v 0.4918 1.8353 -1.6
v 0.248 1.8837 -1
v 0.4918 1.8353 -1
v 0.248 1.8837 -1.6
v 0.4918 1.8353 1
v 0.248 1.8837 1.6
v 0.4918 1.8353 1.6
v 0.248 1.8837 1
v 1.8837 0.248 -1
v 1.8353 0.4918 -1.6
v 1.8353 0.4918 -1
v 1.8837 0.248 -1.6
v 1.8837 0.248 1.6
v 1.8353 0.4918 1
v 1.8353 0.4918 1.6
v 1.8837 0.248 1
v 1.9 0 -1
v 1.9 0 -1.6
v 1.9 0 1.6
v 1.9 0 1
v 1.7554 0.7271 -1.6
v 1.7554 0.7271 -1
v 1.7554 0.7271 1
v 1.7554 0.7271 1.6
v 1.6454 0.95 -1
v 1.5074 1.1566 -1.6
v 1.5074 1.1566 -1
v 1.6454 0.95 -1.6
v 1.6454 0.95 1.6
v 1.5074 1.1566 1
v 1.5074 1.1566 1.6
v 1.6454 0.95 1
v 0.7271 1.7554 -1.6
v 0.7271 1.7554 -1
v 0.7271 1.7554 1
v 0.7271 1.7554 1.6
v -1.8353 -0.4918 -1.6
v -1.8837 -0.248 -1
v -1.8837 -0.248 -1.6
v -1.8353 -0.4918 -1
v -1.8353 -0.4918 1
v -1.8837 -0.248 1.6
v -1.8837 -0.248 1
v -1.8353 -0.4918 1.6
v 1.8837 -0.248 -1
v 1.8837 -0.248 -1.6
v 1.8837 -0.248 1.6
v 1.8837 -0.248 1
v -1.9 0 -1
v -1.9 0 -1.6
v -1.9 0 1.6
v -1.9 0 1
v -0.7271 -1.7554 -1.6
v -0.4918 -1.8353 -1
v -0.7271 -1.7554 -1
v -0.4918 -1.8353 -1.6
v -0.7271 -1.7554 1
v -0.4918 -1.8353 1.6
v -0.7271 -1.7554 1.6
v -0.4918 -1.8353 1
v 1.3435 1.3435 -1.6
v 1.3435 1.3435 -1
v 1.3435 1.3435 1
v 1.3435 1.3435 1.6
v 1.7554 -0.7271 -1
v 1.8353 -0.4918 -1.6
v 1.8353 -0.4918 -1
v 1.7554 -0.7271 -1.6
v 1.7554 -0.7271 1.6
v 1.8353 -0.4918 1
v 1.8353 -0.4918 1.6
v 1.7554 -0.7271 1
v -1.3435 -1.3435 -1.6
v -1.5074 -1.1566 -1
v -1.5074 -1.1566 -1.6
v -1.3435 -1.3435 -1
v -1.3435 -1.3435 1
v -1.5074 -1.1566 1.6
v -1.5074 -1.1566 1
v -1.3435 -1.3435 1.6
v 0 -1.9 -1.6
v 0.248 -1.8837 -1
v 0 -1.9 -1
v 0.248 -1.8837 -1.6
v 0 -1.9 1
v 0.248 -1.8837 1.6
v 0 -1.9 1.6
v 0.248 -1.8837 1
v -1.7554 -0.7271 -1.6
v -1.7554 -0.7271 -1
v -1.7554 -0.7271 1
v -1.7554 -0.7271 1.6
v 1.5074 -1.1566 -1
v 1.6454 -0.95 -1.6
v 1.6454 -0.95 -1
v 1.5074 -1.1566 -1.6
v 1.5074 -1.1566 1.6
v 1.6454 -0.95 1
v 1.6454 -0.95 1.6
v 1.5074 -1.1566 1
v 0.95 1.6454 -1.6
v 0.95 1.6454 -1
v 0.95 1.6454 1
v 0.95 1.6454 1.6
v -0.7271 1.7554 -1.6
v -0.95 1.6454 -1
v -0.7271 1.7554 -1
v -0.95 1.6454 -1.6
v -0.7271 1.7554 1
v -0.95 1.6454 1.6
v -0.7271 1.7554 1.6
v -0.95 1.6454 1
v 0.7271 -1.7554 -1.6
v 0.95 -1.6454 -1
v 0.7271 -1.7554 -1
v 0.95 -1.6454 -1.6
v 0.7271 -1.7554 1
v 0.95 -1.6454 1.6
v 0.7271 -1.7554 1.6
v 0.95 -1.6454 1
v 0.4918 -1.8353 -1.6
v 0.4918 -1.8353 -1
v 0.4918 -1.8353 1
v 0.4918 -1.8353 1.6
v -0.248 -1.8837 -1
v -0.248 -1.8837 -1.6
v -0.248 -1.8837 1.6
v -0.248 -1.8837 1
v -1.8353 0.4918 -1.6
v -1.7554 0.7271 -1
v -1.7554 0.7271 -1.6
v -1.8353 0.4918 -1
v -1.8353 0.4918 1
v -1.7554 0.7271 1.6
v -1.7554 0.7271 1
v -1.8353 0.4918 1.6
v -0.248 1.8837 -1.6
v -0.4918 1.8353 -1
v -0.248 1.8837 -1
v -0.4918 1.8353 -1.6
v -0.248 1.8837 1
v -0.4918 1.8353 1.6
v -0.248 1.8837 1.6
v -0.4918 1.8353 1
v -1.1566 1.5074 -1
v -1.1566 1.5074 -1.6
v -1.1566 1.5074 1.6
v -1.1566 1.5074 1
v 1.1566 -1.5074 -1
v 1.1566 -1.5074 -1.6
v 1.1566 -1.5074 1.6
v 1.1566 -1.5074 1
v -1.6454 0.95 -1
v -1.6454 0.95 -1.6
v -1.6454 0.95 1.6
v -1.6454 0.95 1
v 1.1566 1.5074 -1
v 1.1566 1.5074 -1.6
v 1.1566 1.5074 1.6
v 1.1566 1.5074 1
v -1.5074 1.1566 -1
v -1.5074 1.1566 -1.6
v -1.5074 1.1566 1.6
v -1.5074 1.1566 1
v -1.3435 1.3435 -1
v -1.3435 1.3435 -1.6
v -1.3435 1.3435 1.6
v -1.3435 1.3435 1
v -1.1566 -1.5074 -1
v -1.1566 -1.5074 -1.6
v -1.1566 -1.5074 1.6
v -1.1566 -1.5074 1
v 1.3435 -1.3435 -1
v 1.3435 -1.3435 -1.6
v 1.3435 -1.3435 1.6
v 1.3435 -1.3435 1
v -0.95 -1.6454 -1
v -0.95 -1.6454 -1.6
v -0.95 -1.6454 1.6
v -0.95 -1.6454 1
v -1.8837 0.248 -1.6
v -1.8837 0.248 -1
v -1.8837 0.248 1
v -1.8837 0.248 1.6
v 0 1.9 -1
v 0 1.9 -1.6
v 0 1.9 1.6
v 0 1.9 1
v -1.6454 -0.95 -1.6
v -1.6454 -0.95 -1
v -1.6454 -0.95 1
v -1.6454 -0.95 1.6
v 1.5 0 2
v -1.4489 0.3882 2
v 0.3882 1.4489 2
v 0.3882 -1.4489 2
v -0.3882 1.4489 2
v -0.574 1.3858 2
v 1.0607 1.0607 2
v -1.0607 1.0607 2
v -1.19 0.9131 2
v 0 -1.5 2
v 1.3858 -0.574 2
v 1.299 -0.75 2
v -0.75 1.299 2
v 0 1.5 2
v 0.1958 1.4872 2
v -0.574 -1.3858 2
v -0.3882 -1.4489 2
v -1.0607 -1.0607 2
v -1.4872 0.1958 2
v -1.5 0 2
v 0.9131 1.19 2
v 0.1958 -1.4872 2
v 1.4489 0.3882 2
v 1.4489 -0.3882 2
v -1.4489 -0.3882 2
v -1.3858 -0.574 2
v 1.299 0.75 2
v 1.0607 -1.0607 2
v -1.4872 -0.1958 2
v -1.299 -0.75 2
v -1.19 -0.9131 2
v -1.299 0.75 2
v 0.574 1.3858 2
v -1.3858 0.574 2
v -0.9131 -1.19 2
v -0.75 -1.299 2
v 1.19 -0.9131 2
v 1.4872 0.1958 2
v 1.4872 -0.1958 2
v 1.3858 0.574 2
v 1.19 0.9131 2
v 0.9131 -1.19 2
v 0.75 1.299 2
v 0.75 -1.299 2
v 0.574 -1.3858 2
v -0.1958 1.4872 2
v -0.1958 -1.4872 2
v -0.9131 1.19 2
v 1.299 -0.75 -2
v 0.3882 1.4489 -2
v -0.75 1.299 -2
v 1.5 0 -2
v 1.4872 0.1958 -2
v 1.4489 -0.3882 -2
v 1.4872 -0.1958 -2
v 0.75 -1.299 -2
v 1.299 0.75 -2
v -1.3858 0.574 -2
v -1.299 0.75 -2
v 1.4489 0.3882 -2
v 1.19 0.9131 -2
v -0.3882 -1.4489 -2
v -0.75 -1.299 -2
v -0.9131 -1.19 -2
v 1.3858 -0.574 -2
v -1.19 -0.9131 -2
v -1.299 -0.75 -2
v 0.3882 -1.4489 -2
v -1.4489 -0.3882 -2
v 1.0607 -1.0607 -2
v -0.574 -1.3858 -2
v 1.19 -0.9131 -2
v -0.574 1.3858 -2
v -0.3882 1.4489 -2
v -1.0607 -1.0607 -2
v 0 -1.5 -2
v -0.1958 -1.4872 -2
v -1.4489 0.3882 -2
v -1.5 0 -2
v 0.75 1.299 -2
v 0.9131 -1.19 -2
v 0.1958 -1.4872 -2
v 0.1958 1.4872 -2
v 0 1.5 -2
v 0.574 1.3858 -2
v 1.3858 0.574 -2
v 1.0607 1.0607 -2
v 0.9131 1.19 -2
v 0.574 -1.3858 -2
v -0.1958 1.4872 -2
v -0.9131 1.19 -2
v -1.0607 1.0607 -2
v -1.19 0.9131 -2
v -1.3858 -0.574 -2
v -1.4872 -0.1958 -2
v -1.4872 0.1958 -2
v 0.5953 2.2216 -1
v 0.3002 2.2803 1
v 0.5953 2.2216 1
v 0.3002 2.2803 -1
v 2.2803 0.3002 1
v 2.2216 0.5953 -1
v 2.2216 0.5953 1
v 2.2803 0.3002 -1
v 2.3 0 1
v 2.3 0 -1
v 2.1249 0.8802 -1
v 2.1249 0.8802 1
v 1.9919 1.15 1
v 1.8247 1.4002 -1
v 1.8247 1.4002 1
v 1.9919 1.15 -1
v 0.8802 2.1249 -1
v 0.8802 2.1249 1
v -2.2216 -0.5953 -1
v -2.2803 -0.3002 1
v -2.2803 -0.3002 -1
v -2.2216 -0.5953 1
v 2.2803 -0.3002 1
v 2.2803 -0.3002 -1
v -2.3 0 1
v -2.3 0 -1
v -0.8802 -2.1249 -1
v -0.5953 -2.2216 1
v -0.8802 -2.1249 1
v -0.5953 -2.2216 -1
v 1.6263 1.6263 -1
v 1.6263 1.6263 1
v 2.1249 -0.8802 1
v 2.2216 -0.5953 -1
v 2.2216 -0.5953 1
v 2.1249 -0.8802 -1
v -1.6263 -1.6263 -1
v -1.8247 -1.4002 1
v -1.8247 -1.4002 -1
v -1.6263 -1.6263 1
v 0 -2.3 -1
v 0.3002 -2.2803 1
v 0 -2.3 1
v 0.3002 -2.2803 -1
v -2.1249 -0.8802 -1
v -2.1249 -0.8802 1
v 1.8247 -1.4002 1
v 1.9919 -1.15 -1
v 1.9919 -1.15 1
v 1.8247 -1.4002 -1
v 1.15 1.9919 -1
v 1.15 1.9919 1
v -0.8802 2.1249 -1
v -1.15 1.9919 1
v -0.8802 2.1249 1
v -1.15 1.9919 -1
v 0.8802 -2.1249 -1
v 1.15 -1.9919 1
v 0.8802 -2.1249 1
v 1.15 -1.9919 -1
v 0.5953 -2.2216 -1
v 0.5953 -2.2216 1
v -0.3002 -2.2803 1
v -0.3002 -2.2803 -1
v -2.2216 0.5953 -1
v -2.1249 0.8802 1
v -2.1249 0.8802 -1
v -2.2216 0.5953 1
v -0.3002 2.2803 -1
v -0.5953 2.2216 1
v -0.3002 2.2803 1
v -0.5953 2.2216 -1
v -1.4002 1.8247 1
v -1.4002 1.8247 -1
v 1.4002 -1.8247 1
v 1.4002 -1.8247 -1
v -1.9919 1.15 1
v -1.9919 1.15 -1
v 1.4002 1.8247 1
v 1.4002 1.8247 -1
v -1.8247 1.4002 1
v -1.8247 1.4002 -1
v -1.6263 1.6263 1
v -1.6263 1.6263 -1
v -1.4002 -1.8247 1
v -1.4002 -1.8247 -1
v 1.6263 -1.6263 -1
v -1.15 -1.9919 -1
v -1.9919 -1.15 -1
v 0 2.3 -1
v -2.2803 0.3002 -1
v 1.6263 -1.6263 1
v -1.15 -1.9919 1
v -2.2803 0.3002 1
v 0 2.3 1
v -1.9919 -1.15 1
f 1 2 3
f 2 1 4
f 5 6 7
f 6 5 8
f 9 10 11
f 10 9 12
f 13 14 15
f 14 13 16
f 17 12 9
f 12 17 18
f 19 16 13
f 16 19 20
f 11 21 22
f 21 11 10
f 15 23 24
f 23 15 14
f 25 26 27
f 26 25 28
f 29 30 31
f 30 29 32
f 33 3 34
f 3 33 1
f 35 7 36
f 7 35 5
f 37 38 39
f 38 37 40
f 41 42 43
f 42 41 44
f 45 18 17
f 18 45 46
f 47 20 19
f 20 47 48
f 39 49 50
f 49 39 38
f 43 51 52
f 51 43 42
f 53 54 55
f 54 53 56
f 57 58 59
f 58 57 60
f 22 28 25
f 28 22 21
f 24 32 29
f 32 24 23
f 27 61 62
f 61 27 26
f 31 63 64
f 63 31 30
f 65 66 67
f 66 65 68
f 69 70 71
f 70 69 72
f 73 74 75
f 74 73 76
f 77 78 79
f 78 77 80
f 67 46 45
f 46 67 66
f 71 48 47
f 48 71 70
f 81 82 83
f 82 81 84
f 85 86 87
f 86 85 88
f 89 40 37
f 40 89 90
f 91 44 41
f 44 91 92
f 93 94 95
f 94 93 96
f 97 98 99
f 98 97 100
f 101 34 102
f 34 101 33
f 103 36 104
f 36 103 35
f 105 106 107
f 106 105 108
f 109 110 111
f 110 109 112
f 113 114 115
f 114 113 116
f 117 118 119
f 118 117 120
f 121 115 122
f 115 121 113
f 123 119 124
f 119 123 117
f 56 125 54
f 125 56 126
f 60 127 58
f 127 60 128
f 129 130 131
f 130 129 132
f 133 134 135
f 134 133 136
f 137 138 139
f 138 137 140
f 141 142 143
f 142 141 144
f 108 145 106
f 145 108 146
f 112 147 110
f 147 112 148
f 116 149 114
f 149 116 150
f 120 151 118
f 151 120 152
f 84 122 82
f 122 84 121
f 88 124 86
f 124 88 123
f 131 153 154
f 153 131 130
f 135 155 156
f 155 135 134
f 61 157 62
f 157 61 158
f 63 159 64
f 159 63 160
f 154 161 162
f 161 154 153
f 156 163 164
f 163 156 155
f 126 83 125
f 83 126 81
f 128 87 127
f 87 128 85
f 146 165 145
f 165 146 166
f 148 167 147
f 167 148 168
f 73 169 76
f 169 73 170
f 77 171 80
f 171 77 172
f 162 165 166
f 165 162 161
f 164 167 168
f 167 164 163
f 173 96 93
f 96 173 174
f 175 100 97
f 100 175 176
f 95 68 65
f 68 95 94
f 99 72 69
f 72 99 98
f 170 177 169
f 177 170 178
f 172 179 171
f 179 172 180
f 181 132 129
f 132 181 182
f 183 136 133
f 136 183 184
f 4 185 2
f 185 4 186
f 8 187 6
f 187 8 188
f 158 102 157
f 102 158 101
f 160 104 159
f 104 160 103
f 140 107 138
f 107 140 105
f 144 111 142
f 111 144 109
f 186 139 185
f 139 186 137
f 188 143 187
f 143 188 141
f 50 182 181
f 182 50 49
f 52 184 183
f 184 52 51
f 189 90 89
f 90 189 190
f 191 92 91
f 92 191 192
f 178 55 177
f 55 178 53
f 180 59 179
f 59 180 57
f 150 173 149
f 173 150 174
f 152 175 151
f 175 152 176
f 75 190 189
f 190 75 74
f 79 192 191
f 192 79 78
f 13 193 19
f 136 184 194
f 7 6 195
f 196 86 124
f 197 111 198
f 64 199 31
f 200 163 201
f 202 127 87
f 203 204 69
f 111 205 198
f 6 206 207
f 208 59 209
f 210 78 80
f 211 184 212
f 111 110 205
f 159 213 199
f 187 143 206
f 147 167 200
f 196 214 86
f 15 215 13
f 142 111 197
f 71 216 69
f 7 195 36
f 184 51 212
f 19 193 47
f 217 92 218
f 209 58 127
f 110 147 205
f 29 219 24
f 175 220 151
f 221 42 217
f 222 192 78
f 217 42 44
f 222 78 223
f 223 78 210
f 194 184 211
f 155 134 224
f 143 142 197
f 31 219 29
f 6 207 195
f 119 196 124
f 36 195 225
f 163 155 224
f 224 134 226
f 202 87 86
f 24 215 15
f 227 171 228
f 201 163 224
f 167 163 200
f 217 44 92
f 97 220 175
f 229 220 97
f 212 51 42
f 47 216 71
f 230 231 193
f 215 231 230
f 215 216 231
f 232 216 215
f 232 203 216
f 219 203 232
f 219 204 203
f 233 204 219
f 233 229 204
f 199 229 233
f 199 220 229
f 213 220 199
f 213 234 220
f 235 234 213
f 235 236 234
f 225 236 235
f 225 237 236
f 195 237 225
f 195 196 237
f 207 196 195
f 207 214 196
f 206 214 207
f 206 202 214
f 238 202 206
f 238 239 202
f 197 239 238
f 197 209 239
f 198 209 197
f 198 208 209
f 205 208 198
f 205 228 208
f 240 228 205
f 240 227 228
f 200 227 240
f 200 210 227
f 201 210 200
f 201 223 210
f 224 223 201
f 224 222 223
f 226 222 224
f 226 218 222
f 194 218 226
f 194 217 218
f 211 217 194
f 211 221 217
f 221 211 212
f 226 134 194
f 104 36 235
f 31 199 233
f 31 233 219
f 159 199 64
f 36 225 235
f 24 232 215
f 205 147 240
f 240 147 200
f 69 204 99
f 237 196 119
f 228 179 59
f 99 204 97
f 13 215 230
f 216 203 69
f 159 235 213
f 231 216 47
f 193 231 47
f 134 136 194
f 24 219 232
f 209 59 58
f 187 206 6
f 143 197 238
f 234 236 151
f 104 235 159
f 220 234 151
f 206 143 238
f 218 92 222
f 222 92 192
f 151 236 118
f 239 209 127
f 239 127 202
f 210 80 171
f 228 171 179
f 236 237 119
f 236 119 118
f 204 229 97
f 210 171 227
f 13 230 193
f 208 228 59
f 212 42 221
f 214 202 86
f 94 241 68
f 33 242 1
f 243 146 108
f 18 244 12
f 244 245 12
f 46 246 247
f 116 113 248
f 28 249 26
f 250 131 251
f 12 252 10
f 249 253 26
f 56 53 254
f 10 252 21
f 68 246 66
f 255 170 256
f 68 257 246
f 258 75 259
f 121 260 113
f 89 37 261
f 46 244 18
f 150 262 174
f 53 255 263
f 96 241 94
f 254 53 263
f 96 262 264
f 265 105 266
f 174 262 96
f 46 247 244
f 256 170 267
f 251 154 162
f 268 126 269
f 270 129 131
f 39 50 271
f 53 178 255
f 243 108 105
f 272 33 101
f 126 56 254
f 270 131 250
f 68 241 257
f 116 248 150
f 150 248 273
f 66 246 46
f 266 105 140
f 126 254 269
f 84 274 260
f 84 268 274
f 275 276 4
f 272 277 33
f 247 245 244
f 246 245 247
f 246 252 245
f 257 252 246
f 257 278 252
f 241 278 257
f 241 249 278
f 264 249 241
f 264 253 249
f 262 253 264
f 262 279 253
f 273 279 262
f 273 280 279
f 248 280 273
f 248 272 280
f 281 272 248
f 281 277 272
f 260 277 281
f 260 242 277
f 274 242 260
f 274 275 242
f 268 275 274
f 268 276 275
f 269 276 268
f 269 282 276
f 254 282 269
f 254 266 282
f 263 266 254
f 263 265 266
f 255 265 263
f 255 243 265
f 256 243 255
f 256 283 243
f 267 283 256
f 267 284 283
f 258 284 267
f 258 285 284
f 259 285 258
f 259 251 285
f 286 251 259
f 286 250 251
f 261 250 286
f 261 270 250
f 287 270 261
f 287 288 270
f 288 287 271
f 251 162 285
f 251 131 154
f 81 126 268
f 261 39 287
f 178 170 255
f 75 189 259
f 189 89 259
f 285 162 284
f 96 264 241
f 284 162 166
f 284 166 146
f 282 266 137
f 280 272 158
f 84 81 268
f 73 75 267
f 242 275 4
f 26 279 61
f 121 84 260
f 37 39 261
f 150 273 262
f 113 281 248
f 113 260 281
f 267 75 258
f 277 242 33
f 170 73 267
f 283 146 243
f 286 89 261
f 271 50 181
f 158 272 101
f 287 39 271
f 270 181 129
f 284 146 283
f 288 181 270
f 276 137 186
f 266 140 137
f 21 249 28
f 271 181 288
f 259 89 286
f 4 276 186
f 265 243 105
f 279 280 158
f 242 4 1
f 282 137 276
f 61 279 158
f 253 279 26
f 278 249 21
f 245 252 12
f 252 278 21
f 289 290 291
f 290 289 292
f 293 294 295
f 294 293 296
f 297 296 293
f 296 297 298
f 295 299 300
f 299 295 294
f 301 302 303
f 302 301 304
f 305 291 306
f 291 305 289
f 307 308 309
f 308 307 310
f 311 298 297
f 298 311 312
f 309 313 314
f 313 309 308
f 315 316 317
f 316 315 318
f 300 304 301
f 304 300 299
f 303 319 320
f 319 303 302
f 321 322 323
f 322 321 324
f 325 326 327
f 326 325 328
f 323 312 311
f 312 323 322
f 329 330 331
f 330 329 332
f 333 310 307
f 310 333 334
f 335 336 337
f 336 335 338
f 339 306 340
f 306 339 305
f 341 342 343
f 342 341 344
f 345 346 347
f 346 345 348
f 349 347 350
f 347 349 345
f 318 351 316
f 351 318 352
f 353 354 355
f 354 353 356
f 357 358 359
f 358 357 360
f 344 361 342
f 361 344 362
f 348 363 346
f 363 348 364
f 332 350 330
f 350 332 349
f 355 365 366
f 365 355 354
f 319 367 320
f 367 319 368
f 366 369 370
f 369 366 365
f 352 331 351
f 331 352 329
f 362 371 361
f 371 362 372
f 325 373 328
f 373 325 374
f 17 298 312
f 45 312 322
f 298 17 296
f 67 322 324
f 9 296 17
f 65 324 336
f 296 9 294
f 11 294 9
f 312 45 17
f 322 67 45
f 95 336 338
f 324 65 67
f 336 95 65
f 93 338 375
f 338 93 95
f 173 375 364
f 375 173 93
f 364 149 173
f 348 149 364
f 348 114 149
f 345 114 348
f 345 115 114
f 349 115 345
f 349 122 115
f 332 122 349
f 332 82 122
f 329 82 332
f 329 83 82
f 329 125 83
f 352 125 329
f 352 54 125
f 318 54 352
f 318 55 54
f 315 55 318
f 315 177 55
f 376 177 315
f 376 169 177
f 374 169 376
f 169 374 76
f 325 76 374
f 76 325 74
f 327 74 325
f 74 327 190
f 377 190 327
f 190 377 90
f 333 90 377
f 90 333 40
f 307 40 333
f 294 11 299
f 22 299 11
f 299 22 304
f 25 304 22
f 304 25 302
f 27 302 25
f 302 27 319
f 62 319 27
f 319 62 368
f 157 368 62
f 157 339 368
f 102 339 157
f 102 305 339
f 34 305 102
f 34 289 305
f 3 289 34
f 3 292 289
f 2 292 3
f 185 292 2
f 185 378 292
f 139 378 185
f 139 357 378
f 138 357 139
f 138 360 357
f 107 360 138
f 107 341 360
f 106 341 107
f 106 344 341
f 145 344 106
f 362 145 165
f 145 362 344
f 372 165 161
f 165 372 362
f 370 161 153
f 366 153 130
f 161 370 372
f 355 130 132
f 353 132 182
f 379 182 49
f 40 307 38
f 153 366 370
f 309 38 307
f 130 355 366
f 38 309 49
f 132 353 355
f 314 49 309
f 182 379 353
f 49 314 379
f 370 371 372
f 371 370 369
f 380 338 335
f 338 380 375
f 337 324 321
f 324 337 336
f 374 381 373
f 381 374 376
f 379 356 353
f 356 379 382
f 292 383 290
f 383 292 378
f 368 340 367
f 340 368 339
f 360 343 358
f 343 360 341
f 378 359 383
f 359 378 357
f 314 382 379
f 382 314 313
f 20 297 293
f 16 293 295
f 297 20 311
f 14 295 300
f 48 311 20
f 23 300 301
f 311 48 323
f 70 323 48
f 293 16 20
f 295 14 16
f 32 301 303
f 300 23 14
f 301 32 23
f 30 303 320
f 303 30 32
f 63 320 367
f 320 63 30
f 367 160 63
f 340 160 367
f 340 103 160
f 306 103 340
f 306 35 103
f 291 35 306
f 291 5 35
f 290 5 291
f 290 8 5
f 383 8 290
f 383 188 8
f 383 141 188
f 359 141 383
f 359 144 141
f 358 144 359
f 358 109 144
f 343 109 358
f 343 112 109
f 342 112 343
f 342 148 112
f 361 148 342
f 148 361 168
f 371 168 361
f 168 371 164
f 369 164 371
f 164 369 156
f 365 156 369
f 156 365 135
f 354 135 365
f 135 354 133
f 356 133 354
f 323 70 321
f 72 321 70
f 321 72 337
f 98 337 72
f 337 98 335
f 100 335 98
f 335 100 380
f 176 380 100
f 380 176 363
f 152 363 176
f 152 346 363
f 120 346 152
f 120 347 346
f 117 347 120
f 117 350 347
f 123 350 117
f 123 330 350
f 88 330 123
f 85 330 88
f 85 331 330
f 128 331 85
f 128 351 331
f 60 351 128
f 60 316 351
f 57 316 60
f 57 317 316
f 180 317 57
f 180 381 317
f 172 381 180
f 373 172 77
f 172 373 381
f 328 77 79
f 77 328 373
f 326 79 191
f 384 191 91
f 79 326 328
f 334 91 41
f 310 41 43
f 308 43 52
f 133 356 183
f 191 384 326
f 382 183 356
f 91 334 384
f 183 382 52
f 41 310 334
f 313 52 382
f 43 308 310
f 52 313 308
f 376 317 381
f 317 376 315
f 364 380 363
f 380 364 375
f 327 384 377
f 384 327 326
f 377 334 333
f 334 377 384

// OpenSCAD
// file: params.scad
// ============================================================
// PARAMS — primitivos e derivados do sistema
// ============================================================
// FONTE ÚNICA dos primitivos no OpenSCAD. Toda peça faz
// `include <params.scad>` em vez de redeclarar.
//
// Antes disto os 7 primitivos estavam copiados em brick, pin,
// node e dock — 28 declarações para 7 valores. Foi o que deixou
// `pin_len` ficar 1.6 na spec e 2.0 em quatro implementações sem
// ninguém notar. O `make spec-check` DETECTA essa divergência;
// este arquivo IMPEDE que ela exista.
//
// Reatribuir daqui funciona por include aninhado — testado:
// variante -> peça -> params propaga e os derivados recomputam.
//
// ⚠️ Variável NOVA da variante tem de ser declarada ANTES do
// `include`. Depois dele o OpenSCAD avalia a reatribuição no
// ponto da declaração original, onde a variável nova ainda não
// existe: sai `WARNING: Ignoring unknown variable` e o valor
// errado, em silêncio.
//
// contrato: spec/parts/brick/contracts.toml
// premissas: spec/constitution.md
// ============================================================

/* [Primitivos do sistema] */

// Diâmetro do furo passante — a interface mecânica
hole_d = 4.0; // [1:0.1:30]

// Parede interna mínima (4 perímetros de 0.4)
wall = 1.6; // [0.4:0.1:6]

// Degrau RADIAL entre furo e rebaixo (1 bico de 0.4)
collar_w = 0.4; // [0:0.1:2]

// Profundidade AXIAL do rebaixo
collar_depth = 1.0; // [0.25:0.25:4]

// Folga de press-fit, subtraída sempre do MACHO
tolerance = 0.2; // [0:0.05:0.6]

// Folga real mínima entre dois machos que se aproximam
gap = 0.5; // [0:0.1:2]

// Protrusão do macho. DECLARADO, não derivado: o limite é a
// colisão com o macho PERPENDICULAR, e essa aproximação é
// DIAGONAL, não axial. Ver constitution.md § 5.
pin_len = 2.0; // [0.5:0.05:6]

/* [Qualidade] */
$fn = 48;

// ============================================================
// DERIVADOS — nada aqui é escolhido à mão
// ============================================================
grid     = hole_d + 2 * (wall + collar_w);
recess_d = hole_d + 2 * collar_w;
pin_d    = hole_d - tolerance;
collar_d = recess_d - tolerance;
inset    = grid / 2;

// Teto do macho: duas hastes perpendiculares se tocam aqui.
pin_len_max = grid / 2 - pin_d / 2;

// Furo de BORDA exige seção — é o que fixa o grid.
edge_bore_min = hole_d + 2 * wall;

// Chanfro de entrada do macho. Constante, não parâmetro: existe
// para o macho achar o furo, e ninguém decide isso peça a peça.
lead_in = 0.4;

assert(pin_len <= pin_len_max,
       str("macho longo demais: ", pin_len, " > ", pin_len_max,
           " — encosta no macho perpendicular da célula receptora"));
assert(pin_len > collar_depth,
       "colar mais fundo que a protrusão: a haste não sai do colar");
assert(hole_d * sqrt(2) > recess_d,
       "rebaixo morde a barra da aresta: exige hole_d·√2 > recess_d");

// ============================================================
// O CONECTOR — desenhado UMA vez, usado por toda peça
// ============================================================
// Referencial: origem no centro da face, +Z para FORA da peça.

// Vocabulário dos encaixes. A IR de montagem diz stud / socket / flat
// (spec/assembly.md § Nomes); os parâmetros das peças sempre disseram
// pin / recess / plain. As duas formas valem em qualquer -D.
function fb_kind(k) = k == "stud" ? "pin" : k == "socket" ? "recess" : k == "flat" ? "plain" : k;

// MACHO: colar (quem retém) + haste + chanfro de entrada.
// `sink` afunda a base no corpo, só para a união não ficar coplanar.
module fb_male(sink = 0) {
    translate([0, 0, -sink]) cylinder(d = collar_d, h = collar_depth + sink);
    cylinder(d = pin_d, h = pin_len - lead_in);
    translate([0, 0, pin_len - lead_in])
        cylinder(r1 = pin_d / 2, r2 = pin_d / 2 - lead_in, h = lead_in);
}

// FÊMEA (para subtrair): rebaixo que aloja o colar e, com `bore > 0`,
// o furo de profundidade `bore` atrás dele.
module fb_female(bore = 0, recess = true) {
    e = 0.02;
    if (recess) translate([0, 0, -collar_depth]) cylinder(d = recess_d, h = collar_depth + e);
    if (bore > 0) translate([0, 0, -bore]) cylinder(d = hole_d, h = bore + e);
}
// main file
// ============================================================
// PIN — Design System 3D Modular
// ============================================================
// O único macho solto do sistema. Une dois furos, em qualquer
// escala. Absorve BRIDGE (cavilha), LINK (conector de face) e
// LINK-ONESIDE — os três eram o mesmo objeto em tamanhos
// diferentes.
//
// NOTA DE NOMENCLATURA: até a v1, PIN era o nome da viga. A
// viga virou BRICK 1×1×n, e o nome passou para o macho — que
// é o que ele descreve.
//
//        ┌──┐        ← Ø pino
//     ┌──┴──┴──┐     ← Ø colar (assenta no rebaixo)
//     └──┬──┬──┘
//        └──┘
//
// QUEM RETÉM É O COLAR. A haste além dele ALINHA, não segura —
// alongar `pin_len` melhora torção e balanço, e não muda a
// força de arrancamento. Essa é `collar_depth` / `tolerance`.
//
// spec: spec/parts/pin.md
// ============================================================

// Primitivos e derivados: fonte única, não redeclarar aqui.
include <params.scad>

/* [Escala] */
// Diâmetro do furo RECEPTOR. Um PIN para o furo padrão e um
// para o recurso central são a mesma peça, com `size` diferente.
size = 4.0; // [2:0.5:60]

/* [Forma] */
// 1 = macho de uma ponta · 2 = cavilha, metade em cada furo
ends = 2; // [1:1:2]

// Afastamento entre as duas pontas. É onde o macho fica mais
// longo sem alterar quanto cada ponta entra.
spacer = 0; // [0:0.5:60]

// Chanfro de entrada

// Cópias lado a lado — peça pequena solta imprime mal
qty     = 1; // [1:1:20]
qty_gap = 4; // [2:0.5:20]

// ============================================================
// DERIVADOS
// ============================================================

// Protrusão do macho. DECLARADO, não derivado.
//
// A versão anterior fazia `wall + collar_w + tolerance/2 - gap`,
// que cobrava √2 a mais do que a geometria pede: o limite é a
// colisão com o macho PERPENDICULAR da célula receptora, e essa
// aproximação é DIAGONAL, não axial. Subtrair `gap` do eixo
// gastava 0.5mm de engate para comprar 0.71mm de folga.
//
// O teto verdadeiro está no assert abaixo. 2.0 foi verificado
// por dilatação (minkowski): folga real ≥ 0.5mm.

// Teto geométrico: a haste tem raio pin_d/2 e parte da face, a
// grid/2 do centro. Duas hastes perpendiculares se tocam quando
// pin_len alcança essa diferença.

// Vazado quando o diâmetro permite. Na escala micro sobram
// 0.6mm — abaixo do jumper Dupont, então o macho é maciço.
canal_raw = pin_d - 2 * wall;
canal_d   = canal_raw >= 2.5 ? canal_raw : 0;

total_len = ends == 2 ? 2 * pin_len + spacer : pin_len;
collar_h  = ends == 2 ? 2 * collar_depth + spacer : collar_depth;

// ============================================================
// VALIDAÇÃO
// ============================================================
assert(ends != 2 || 2 * pin_len <= grid - gap,
       "duas pontas não cabem num furo passante compartilhado");
// ============================================================
// MÓDULOS
// ============================================================
// Haste centrada na origem, chanfrada nas DUAS pontas. O
// chanfro corta para DENTRO do comprimento — não estende.
module shaft_chamfered(len) {
    r = pin_d / 2;
    h = len / 2;
    if (lead_in <= 0) cylinder(d = pin_d, h = len, center = true);
    else union() {
        cylinder(d = pin_d, h = len - 2 * lead_in, center = true);
        translate([0, 0,  h - lead_in]) cylinder(r1 = r, r2 = r - lead_in, h = lead_in);
        translate([0, 0, -h])           cylinder(r1 = r - lead_in, r2 = r, h = lead_in);
    }
}

module pin_solid() {
    if (ends == 2) {
        // Cavilha: haste passante + colar central, dividido
        // entre os rebaixos dos dois furos
        union() {
            shaft_chamfered(total_len);
            translate([0, 0, -collar_h/2]) cylinder(d = collar_d, h = collar_h);
        }
    } else {
        fb_male();
    }
}

// Módulo público da peça — mesmo padrão de brick()/node()/dock(),
// que é o nome que um assembly importa com `use <pin.scad>`.
module pin() {
    if (canal_d <= 0) pin_solid();
    else difference() {
        pin_solid();
        translate([0, 0, -total_len])
            cylinder(d = canal_d, h = 3 * total_len);
    }
}

// ============================================================
// RENDER
// ============================================================
part_color = [0.85, 0.55, 0.20];
color(part_color)
    for (i = [0 : qty - 1])
        translate([i * (collar_d + qty_gap), 0, 0]) pin();

// ============================================================
// INFO
// ============================================================
echo("=== PIN ===");
echo(str("Escala      furo receptor Ø", size, " | grid do sistema ", grid));
echo(str("PINO        haste Ø", pin_d, " | colar Ø", collar_d, "×", collar_h, " | protrusão ", pin_len, " por ponta"));
echo(str("Forma       ", ends, " ponta(s) | spacer ", spacer, " | total ", total_len, "mm (×", qty, ")"));
echo("---");
echo(str("Haste além do colar : ", pin_len - collar_depth, "mm  — quem retém é o COLAR"));
echo(str("Aperto no colar     : ", recess_d - collar_d, "mm no diâmetro"));
echo(str("Canal de fio        : ", canal_d > 0 ? str("Ø", canal_d, "mm") : str("fechado (só ", canal_raw, "mm, mínimo 2.5)")));
